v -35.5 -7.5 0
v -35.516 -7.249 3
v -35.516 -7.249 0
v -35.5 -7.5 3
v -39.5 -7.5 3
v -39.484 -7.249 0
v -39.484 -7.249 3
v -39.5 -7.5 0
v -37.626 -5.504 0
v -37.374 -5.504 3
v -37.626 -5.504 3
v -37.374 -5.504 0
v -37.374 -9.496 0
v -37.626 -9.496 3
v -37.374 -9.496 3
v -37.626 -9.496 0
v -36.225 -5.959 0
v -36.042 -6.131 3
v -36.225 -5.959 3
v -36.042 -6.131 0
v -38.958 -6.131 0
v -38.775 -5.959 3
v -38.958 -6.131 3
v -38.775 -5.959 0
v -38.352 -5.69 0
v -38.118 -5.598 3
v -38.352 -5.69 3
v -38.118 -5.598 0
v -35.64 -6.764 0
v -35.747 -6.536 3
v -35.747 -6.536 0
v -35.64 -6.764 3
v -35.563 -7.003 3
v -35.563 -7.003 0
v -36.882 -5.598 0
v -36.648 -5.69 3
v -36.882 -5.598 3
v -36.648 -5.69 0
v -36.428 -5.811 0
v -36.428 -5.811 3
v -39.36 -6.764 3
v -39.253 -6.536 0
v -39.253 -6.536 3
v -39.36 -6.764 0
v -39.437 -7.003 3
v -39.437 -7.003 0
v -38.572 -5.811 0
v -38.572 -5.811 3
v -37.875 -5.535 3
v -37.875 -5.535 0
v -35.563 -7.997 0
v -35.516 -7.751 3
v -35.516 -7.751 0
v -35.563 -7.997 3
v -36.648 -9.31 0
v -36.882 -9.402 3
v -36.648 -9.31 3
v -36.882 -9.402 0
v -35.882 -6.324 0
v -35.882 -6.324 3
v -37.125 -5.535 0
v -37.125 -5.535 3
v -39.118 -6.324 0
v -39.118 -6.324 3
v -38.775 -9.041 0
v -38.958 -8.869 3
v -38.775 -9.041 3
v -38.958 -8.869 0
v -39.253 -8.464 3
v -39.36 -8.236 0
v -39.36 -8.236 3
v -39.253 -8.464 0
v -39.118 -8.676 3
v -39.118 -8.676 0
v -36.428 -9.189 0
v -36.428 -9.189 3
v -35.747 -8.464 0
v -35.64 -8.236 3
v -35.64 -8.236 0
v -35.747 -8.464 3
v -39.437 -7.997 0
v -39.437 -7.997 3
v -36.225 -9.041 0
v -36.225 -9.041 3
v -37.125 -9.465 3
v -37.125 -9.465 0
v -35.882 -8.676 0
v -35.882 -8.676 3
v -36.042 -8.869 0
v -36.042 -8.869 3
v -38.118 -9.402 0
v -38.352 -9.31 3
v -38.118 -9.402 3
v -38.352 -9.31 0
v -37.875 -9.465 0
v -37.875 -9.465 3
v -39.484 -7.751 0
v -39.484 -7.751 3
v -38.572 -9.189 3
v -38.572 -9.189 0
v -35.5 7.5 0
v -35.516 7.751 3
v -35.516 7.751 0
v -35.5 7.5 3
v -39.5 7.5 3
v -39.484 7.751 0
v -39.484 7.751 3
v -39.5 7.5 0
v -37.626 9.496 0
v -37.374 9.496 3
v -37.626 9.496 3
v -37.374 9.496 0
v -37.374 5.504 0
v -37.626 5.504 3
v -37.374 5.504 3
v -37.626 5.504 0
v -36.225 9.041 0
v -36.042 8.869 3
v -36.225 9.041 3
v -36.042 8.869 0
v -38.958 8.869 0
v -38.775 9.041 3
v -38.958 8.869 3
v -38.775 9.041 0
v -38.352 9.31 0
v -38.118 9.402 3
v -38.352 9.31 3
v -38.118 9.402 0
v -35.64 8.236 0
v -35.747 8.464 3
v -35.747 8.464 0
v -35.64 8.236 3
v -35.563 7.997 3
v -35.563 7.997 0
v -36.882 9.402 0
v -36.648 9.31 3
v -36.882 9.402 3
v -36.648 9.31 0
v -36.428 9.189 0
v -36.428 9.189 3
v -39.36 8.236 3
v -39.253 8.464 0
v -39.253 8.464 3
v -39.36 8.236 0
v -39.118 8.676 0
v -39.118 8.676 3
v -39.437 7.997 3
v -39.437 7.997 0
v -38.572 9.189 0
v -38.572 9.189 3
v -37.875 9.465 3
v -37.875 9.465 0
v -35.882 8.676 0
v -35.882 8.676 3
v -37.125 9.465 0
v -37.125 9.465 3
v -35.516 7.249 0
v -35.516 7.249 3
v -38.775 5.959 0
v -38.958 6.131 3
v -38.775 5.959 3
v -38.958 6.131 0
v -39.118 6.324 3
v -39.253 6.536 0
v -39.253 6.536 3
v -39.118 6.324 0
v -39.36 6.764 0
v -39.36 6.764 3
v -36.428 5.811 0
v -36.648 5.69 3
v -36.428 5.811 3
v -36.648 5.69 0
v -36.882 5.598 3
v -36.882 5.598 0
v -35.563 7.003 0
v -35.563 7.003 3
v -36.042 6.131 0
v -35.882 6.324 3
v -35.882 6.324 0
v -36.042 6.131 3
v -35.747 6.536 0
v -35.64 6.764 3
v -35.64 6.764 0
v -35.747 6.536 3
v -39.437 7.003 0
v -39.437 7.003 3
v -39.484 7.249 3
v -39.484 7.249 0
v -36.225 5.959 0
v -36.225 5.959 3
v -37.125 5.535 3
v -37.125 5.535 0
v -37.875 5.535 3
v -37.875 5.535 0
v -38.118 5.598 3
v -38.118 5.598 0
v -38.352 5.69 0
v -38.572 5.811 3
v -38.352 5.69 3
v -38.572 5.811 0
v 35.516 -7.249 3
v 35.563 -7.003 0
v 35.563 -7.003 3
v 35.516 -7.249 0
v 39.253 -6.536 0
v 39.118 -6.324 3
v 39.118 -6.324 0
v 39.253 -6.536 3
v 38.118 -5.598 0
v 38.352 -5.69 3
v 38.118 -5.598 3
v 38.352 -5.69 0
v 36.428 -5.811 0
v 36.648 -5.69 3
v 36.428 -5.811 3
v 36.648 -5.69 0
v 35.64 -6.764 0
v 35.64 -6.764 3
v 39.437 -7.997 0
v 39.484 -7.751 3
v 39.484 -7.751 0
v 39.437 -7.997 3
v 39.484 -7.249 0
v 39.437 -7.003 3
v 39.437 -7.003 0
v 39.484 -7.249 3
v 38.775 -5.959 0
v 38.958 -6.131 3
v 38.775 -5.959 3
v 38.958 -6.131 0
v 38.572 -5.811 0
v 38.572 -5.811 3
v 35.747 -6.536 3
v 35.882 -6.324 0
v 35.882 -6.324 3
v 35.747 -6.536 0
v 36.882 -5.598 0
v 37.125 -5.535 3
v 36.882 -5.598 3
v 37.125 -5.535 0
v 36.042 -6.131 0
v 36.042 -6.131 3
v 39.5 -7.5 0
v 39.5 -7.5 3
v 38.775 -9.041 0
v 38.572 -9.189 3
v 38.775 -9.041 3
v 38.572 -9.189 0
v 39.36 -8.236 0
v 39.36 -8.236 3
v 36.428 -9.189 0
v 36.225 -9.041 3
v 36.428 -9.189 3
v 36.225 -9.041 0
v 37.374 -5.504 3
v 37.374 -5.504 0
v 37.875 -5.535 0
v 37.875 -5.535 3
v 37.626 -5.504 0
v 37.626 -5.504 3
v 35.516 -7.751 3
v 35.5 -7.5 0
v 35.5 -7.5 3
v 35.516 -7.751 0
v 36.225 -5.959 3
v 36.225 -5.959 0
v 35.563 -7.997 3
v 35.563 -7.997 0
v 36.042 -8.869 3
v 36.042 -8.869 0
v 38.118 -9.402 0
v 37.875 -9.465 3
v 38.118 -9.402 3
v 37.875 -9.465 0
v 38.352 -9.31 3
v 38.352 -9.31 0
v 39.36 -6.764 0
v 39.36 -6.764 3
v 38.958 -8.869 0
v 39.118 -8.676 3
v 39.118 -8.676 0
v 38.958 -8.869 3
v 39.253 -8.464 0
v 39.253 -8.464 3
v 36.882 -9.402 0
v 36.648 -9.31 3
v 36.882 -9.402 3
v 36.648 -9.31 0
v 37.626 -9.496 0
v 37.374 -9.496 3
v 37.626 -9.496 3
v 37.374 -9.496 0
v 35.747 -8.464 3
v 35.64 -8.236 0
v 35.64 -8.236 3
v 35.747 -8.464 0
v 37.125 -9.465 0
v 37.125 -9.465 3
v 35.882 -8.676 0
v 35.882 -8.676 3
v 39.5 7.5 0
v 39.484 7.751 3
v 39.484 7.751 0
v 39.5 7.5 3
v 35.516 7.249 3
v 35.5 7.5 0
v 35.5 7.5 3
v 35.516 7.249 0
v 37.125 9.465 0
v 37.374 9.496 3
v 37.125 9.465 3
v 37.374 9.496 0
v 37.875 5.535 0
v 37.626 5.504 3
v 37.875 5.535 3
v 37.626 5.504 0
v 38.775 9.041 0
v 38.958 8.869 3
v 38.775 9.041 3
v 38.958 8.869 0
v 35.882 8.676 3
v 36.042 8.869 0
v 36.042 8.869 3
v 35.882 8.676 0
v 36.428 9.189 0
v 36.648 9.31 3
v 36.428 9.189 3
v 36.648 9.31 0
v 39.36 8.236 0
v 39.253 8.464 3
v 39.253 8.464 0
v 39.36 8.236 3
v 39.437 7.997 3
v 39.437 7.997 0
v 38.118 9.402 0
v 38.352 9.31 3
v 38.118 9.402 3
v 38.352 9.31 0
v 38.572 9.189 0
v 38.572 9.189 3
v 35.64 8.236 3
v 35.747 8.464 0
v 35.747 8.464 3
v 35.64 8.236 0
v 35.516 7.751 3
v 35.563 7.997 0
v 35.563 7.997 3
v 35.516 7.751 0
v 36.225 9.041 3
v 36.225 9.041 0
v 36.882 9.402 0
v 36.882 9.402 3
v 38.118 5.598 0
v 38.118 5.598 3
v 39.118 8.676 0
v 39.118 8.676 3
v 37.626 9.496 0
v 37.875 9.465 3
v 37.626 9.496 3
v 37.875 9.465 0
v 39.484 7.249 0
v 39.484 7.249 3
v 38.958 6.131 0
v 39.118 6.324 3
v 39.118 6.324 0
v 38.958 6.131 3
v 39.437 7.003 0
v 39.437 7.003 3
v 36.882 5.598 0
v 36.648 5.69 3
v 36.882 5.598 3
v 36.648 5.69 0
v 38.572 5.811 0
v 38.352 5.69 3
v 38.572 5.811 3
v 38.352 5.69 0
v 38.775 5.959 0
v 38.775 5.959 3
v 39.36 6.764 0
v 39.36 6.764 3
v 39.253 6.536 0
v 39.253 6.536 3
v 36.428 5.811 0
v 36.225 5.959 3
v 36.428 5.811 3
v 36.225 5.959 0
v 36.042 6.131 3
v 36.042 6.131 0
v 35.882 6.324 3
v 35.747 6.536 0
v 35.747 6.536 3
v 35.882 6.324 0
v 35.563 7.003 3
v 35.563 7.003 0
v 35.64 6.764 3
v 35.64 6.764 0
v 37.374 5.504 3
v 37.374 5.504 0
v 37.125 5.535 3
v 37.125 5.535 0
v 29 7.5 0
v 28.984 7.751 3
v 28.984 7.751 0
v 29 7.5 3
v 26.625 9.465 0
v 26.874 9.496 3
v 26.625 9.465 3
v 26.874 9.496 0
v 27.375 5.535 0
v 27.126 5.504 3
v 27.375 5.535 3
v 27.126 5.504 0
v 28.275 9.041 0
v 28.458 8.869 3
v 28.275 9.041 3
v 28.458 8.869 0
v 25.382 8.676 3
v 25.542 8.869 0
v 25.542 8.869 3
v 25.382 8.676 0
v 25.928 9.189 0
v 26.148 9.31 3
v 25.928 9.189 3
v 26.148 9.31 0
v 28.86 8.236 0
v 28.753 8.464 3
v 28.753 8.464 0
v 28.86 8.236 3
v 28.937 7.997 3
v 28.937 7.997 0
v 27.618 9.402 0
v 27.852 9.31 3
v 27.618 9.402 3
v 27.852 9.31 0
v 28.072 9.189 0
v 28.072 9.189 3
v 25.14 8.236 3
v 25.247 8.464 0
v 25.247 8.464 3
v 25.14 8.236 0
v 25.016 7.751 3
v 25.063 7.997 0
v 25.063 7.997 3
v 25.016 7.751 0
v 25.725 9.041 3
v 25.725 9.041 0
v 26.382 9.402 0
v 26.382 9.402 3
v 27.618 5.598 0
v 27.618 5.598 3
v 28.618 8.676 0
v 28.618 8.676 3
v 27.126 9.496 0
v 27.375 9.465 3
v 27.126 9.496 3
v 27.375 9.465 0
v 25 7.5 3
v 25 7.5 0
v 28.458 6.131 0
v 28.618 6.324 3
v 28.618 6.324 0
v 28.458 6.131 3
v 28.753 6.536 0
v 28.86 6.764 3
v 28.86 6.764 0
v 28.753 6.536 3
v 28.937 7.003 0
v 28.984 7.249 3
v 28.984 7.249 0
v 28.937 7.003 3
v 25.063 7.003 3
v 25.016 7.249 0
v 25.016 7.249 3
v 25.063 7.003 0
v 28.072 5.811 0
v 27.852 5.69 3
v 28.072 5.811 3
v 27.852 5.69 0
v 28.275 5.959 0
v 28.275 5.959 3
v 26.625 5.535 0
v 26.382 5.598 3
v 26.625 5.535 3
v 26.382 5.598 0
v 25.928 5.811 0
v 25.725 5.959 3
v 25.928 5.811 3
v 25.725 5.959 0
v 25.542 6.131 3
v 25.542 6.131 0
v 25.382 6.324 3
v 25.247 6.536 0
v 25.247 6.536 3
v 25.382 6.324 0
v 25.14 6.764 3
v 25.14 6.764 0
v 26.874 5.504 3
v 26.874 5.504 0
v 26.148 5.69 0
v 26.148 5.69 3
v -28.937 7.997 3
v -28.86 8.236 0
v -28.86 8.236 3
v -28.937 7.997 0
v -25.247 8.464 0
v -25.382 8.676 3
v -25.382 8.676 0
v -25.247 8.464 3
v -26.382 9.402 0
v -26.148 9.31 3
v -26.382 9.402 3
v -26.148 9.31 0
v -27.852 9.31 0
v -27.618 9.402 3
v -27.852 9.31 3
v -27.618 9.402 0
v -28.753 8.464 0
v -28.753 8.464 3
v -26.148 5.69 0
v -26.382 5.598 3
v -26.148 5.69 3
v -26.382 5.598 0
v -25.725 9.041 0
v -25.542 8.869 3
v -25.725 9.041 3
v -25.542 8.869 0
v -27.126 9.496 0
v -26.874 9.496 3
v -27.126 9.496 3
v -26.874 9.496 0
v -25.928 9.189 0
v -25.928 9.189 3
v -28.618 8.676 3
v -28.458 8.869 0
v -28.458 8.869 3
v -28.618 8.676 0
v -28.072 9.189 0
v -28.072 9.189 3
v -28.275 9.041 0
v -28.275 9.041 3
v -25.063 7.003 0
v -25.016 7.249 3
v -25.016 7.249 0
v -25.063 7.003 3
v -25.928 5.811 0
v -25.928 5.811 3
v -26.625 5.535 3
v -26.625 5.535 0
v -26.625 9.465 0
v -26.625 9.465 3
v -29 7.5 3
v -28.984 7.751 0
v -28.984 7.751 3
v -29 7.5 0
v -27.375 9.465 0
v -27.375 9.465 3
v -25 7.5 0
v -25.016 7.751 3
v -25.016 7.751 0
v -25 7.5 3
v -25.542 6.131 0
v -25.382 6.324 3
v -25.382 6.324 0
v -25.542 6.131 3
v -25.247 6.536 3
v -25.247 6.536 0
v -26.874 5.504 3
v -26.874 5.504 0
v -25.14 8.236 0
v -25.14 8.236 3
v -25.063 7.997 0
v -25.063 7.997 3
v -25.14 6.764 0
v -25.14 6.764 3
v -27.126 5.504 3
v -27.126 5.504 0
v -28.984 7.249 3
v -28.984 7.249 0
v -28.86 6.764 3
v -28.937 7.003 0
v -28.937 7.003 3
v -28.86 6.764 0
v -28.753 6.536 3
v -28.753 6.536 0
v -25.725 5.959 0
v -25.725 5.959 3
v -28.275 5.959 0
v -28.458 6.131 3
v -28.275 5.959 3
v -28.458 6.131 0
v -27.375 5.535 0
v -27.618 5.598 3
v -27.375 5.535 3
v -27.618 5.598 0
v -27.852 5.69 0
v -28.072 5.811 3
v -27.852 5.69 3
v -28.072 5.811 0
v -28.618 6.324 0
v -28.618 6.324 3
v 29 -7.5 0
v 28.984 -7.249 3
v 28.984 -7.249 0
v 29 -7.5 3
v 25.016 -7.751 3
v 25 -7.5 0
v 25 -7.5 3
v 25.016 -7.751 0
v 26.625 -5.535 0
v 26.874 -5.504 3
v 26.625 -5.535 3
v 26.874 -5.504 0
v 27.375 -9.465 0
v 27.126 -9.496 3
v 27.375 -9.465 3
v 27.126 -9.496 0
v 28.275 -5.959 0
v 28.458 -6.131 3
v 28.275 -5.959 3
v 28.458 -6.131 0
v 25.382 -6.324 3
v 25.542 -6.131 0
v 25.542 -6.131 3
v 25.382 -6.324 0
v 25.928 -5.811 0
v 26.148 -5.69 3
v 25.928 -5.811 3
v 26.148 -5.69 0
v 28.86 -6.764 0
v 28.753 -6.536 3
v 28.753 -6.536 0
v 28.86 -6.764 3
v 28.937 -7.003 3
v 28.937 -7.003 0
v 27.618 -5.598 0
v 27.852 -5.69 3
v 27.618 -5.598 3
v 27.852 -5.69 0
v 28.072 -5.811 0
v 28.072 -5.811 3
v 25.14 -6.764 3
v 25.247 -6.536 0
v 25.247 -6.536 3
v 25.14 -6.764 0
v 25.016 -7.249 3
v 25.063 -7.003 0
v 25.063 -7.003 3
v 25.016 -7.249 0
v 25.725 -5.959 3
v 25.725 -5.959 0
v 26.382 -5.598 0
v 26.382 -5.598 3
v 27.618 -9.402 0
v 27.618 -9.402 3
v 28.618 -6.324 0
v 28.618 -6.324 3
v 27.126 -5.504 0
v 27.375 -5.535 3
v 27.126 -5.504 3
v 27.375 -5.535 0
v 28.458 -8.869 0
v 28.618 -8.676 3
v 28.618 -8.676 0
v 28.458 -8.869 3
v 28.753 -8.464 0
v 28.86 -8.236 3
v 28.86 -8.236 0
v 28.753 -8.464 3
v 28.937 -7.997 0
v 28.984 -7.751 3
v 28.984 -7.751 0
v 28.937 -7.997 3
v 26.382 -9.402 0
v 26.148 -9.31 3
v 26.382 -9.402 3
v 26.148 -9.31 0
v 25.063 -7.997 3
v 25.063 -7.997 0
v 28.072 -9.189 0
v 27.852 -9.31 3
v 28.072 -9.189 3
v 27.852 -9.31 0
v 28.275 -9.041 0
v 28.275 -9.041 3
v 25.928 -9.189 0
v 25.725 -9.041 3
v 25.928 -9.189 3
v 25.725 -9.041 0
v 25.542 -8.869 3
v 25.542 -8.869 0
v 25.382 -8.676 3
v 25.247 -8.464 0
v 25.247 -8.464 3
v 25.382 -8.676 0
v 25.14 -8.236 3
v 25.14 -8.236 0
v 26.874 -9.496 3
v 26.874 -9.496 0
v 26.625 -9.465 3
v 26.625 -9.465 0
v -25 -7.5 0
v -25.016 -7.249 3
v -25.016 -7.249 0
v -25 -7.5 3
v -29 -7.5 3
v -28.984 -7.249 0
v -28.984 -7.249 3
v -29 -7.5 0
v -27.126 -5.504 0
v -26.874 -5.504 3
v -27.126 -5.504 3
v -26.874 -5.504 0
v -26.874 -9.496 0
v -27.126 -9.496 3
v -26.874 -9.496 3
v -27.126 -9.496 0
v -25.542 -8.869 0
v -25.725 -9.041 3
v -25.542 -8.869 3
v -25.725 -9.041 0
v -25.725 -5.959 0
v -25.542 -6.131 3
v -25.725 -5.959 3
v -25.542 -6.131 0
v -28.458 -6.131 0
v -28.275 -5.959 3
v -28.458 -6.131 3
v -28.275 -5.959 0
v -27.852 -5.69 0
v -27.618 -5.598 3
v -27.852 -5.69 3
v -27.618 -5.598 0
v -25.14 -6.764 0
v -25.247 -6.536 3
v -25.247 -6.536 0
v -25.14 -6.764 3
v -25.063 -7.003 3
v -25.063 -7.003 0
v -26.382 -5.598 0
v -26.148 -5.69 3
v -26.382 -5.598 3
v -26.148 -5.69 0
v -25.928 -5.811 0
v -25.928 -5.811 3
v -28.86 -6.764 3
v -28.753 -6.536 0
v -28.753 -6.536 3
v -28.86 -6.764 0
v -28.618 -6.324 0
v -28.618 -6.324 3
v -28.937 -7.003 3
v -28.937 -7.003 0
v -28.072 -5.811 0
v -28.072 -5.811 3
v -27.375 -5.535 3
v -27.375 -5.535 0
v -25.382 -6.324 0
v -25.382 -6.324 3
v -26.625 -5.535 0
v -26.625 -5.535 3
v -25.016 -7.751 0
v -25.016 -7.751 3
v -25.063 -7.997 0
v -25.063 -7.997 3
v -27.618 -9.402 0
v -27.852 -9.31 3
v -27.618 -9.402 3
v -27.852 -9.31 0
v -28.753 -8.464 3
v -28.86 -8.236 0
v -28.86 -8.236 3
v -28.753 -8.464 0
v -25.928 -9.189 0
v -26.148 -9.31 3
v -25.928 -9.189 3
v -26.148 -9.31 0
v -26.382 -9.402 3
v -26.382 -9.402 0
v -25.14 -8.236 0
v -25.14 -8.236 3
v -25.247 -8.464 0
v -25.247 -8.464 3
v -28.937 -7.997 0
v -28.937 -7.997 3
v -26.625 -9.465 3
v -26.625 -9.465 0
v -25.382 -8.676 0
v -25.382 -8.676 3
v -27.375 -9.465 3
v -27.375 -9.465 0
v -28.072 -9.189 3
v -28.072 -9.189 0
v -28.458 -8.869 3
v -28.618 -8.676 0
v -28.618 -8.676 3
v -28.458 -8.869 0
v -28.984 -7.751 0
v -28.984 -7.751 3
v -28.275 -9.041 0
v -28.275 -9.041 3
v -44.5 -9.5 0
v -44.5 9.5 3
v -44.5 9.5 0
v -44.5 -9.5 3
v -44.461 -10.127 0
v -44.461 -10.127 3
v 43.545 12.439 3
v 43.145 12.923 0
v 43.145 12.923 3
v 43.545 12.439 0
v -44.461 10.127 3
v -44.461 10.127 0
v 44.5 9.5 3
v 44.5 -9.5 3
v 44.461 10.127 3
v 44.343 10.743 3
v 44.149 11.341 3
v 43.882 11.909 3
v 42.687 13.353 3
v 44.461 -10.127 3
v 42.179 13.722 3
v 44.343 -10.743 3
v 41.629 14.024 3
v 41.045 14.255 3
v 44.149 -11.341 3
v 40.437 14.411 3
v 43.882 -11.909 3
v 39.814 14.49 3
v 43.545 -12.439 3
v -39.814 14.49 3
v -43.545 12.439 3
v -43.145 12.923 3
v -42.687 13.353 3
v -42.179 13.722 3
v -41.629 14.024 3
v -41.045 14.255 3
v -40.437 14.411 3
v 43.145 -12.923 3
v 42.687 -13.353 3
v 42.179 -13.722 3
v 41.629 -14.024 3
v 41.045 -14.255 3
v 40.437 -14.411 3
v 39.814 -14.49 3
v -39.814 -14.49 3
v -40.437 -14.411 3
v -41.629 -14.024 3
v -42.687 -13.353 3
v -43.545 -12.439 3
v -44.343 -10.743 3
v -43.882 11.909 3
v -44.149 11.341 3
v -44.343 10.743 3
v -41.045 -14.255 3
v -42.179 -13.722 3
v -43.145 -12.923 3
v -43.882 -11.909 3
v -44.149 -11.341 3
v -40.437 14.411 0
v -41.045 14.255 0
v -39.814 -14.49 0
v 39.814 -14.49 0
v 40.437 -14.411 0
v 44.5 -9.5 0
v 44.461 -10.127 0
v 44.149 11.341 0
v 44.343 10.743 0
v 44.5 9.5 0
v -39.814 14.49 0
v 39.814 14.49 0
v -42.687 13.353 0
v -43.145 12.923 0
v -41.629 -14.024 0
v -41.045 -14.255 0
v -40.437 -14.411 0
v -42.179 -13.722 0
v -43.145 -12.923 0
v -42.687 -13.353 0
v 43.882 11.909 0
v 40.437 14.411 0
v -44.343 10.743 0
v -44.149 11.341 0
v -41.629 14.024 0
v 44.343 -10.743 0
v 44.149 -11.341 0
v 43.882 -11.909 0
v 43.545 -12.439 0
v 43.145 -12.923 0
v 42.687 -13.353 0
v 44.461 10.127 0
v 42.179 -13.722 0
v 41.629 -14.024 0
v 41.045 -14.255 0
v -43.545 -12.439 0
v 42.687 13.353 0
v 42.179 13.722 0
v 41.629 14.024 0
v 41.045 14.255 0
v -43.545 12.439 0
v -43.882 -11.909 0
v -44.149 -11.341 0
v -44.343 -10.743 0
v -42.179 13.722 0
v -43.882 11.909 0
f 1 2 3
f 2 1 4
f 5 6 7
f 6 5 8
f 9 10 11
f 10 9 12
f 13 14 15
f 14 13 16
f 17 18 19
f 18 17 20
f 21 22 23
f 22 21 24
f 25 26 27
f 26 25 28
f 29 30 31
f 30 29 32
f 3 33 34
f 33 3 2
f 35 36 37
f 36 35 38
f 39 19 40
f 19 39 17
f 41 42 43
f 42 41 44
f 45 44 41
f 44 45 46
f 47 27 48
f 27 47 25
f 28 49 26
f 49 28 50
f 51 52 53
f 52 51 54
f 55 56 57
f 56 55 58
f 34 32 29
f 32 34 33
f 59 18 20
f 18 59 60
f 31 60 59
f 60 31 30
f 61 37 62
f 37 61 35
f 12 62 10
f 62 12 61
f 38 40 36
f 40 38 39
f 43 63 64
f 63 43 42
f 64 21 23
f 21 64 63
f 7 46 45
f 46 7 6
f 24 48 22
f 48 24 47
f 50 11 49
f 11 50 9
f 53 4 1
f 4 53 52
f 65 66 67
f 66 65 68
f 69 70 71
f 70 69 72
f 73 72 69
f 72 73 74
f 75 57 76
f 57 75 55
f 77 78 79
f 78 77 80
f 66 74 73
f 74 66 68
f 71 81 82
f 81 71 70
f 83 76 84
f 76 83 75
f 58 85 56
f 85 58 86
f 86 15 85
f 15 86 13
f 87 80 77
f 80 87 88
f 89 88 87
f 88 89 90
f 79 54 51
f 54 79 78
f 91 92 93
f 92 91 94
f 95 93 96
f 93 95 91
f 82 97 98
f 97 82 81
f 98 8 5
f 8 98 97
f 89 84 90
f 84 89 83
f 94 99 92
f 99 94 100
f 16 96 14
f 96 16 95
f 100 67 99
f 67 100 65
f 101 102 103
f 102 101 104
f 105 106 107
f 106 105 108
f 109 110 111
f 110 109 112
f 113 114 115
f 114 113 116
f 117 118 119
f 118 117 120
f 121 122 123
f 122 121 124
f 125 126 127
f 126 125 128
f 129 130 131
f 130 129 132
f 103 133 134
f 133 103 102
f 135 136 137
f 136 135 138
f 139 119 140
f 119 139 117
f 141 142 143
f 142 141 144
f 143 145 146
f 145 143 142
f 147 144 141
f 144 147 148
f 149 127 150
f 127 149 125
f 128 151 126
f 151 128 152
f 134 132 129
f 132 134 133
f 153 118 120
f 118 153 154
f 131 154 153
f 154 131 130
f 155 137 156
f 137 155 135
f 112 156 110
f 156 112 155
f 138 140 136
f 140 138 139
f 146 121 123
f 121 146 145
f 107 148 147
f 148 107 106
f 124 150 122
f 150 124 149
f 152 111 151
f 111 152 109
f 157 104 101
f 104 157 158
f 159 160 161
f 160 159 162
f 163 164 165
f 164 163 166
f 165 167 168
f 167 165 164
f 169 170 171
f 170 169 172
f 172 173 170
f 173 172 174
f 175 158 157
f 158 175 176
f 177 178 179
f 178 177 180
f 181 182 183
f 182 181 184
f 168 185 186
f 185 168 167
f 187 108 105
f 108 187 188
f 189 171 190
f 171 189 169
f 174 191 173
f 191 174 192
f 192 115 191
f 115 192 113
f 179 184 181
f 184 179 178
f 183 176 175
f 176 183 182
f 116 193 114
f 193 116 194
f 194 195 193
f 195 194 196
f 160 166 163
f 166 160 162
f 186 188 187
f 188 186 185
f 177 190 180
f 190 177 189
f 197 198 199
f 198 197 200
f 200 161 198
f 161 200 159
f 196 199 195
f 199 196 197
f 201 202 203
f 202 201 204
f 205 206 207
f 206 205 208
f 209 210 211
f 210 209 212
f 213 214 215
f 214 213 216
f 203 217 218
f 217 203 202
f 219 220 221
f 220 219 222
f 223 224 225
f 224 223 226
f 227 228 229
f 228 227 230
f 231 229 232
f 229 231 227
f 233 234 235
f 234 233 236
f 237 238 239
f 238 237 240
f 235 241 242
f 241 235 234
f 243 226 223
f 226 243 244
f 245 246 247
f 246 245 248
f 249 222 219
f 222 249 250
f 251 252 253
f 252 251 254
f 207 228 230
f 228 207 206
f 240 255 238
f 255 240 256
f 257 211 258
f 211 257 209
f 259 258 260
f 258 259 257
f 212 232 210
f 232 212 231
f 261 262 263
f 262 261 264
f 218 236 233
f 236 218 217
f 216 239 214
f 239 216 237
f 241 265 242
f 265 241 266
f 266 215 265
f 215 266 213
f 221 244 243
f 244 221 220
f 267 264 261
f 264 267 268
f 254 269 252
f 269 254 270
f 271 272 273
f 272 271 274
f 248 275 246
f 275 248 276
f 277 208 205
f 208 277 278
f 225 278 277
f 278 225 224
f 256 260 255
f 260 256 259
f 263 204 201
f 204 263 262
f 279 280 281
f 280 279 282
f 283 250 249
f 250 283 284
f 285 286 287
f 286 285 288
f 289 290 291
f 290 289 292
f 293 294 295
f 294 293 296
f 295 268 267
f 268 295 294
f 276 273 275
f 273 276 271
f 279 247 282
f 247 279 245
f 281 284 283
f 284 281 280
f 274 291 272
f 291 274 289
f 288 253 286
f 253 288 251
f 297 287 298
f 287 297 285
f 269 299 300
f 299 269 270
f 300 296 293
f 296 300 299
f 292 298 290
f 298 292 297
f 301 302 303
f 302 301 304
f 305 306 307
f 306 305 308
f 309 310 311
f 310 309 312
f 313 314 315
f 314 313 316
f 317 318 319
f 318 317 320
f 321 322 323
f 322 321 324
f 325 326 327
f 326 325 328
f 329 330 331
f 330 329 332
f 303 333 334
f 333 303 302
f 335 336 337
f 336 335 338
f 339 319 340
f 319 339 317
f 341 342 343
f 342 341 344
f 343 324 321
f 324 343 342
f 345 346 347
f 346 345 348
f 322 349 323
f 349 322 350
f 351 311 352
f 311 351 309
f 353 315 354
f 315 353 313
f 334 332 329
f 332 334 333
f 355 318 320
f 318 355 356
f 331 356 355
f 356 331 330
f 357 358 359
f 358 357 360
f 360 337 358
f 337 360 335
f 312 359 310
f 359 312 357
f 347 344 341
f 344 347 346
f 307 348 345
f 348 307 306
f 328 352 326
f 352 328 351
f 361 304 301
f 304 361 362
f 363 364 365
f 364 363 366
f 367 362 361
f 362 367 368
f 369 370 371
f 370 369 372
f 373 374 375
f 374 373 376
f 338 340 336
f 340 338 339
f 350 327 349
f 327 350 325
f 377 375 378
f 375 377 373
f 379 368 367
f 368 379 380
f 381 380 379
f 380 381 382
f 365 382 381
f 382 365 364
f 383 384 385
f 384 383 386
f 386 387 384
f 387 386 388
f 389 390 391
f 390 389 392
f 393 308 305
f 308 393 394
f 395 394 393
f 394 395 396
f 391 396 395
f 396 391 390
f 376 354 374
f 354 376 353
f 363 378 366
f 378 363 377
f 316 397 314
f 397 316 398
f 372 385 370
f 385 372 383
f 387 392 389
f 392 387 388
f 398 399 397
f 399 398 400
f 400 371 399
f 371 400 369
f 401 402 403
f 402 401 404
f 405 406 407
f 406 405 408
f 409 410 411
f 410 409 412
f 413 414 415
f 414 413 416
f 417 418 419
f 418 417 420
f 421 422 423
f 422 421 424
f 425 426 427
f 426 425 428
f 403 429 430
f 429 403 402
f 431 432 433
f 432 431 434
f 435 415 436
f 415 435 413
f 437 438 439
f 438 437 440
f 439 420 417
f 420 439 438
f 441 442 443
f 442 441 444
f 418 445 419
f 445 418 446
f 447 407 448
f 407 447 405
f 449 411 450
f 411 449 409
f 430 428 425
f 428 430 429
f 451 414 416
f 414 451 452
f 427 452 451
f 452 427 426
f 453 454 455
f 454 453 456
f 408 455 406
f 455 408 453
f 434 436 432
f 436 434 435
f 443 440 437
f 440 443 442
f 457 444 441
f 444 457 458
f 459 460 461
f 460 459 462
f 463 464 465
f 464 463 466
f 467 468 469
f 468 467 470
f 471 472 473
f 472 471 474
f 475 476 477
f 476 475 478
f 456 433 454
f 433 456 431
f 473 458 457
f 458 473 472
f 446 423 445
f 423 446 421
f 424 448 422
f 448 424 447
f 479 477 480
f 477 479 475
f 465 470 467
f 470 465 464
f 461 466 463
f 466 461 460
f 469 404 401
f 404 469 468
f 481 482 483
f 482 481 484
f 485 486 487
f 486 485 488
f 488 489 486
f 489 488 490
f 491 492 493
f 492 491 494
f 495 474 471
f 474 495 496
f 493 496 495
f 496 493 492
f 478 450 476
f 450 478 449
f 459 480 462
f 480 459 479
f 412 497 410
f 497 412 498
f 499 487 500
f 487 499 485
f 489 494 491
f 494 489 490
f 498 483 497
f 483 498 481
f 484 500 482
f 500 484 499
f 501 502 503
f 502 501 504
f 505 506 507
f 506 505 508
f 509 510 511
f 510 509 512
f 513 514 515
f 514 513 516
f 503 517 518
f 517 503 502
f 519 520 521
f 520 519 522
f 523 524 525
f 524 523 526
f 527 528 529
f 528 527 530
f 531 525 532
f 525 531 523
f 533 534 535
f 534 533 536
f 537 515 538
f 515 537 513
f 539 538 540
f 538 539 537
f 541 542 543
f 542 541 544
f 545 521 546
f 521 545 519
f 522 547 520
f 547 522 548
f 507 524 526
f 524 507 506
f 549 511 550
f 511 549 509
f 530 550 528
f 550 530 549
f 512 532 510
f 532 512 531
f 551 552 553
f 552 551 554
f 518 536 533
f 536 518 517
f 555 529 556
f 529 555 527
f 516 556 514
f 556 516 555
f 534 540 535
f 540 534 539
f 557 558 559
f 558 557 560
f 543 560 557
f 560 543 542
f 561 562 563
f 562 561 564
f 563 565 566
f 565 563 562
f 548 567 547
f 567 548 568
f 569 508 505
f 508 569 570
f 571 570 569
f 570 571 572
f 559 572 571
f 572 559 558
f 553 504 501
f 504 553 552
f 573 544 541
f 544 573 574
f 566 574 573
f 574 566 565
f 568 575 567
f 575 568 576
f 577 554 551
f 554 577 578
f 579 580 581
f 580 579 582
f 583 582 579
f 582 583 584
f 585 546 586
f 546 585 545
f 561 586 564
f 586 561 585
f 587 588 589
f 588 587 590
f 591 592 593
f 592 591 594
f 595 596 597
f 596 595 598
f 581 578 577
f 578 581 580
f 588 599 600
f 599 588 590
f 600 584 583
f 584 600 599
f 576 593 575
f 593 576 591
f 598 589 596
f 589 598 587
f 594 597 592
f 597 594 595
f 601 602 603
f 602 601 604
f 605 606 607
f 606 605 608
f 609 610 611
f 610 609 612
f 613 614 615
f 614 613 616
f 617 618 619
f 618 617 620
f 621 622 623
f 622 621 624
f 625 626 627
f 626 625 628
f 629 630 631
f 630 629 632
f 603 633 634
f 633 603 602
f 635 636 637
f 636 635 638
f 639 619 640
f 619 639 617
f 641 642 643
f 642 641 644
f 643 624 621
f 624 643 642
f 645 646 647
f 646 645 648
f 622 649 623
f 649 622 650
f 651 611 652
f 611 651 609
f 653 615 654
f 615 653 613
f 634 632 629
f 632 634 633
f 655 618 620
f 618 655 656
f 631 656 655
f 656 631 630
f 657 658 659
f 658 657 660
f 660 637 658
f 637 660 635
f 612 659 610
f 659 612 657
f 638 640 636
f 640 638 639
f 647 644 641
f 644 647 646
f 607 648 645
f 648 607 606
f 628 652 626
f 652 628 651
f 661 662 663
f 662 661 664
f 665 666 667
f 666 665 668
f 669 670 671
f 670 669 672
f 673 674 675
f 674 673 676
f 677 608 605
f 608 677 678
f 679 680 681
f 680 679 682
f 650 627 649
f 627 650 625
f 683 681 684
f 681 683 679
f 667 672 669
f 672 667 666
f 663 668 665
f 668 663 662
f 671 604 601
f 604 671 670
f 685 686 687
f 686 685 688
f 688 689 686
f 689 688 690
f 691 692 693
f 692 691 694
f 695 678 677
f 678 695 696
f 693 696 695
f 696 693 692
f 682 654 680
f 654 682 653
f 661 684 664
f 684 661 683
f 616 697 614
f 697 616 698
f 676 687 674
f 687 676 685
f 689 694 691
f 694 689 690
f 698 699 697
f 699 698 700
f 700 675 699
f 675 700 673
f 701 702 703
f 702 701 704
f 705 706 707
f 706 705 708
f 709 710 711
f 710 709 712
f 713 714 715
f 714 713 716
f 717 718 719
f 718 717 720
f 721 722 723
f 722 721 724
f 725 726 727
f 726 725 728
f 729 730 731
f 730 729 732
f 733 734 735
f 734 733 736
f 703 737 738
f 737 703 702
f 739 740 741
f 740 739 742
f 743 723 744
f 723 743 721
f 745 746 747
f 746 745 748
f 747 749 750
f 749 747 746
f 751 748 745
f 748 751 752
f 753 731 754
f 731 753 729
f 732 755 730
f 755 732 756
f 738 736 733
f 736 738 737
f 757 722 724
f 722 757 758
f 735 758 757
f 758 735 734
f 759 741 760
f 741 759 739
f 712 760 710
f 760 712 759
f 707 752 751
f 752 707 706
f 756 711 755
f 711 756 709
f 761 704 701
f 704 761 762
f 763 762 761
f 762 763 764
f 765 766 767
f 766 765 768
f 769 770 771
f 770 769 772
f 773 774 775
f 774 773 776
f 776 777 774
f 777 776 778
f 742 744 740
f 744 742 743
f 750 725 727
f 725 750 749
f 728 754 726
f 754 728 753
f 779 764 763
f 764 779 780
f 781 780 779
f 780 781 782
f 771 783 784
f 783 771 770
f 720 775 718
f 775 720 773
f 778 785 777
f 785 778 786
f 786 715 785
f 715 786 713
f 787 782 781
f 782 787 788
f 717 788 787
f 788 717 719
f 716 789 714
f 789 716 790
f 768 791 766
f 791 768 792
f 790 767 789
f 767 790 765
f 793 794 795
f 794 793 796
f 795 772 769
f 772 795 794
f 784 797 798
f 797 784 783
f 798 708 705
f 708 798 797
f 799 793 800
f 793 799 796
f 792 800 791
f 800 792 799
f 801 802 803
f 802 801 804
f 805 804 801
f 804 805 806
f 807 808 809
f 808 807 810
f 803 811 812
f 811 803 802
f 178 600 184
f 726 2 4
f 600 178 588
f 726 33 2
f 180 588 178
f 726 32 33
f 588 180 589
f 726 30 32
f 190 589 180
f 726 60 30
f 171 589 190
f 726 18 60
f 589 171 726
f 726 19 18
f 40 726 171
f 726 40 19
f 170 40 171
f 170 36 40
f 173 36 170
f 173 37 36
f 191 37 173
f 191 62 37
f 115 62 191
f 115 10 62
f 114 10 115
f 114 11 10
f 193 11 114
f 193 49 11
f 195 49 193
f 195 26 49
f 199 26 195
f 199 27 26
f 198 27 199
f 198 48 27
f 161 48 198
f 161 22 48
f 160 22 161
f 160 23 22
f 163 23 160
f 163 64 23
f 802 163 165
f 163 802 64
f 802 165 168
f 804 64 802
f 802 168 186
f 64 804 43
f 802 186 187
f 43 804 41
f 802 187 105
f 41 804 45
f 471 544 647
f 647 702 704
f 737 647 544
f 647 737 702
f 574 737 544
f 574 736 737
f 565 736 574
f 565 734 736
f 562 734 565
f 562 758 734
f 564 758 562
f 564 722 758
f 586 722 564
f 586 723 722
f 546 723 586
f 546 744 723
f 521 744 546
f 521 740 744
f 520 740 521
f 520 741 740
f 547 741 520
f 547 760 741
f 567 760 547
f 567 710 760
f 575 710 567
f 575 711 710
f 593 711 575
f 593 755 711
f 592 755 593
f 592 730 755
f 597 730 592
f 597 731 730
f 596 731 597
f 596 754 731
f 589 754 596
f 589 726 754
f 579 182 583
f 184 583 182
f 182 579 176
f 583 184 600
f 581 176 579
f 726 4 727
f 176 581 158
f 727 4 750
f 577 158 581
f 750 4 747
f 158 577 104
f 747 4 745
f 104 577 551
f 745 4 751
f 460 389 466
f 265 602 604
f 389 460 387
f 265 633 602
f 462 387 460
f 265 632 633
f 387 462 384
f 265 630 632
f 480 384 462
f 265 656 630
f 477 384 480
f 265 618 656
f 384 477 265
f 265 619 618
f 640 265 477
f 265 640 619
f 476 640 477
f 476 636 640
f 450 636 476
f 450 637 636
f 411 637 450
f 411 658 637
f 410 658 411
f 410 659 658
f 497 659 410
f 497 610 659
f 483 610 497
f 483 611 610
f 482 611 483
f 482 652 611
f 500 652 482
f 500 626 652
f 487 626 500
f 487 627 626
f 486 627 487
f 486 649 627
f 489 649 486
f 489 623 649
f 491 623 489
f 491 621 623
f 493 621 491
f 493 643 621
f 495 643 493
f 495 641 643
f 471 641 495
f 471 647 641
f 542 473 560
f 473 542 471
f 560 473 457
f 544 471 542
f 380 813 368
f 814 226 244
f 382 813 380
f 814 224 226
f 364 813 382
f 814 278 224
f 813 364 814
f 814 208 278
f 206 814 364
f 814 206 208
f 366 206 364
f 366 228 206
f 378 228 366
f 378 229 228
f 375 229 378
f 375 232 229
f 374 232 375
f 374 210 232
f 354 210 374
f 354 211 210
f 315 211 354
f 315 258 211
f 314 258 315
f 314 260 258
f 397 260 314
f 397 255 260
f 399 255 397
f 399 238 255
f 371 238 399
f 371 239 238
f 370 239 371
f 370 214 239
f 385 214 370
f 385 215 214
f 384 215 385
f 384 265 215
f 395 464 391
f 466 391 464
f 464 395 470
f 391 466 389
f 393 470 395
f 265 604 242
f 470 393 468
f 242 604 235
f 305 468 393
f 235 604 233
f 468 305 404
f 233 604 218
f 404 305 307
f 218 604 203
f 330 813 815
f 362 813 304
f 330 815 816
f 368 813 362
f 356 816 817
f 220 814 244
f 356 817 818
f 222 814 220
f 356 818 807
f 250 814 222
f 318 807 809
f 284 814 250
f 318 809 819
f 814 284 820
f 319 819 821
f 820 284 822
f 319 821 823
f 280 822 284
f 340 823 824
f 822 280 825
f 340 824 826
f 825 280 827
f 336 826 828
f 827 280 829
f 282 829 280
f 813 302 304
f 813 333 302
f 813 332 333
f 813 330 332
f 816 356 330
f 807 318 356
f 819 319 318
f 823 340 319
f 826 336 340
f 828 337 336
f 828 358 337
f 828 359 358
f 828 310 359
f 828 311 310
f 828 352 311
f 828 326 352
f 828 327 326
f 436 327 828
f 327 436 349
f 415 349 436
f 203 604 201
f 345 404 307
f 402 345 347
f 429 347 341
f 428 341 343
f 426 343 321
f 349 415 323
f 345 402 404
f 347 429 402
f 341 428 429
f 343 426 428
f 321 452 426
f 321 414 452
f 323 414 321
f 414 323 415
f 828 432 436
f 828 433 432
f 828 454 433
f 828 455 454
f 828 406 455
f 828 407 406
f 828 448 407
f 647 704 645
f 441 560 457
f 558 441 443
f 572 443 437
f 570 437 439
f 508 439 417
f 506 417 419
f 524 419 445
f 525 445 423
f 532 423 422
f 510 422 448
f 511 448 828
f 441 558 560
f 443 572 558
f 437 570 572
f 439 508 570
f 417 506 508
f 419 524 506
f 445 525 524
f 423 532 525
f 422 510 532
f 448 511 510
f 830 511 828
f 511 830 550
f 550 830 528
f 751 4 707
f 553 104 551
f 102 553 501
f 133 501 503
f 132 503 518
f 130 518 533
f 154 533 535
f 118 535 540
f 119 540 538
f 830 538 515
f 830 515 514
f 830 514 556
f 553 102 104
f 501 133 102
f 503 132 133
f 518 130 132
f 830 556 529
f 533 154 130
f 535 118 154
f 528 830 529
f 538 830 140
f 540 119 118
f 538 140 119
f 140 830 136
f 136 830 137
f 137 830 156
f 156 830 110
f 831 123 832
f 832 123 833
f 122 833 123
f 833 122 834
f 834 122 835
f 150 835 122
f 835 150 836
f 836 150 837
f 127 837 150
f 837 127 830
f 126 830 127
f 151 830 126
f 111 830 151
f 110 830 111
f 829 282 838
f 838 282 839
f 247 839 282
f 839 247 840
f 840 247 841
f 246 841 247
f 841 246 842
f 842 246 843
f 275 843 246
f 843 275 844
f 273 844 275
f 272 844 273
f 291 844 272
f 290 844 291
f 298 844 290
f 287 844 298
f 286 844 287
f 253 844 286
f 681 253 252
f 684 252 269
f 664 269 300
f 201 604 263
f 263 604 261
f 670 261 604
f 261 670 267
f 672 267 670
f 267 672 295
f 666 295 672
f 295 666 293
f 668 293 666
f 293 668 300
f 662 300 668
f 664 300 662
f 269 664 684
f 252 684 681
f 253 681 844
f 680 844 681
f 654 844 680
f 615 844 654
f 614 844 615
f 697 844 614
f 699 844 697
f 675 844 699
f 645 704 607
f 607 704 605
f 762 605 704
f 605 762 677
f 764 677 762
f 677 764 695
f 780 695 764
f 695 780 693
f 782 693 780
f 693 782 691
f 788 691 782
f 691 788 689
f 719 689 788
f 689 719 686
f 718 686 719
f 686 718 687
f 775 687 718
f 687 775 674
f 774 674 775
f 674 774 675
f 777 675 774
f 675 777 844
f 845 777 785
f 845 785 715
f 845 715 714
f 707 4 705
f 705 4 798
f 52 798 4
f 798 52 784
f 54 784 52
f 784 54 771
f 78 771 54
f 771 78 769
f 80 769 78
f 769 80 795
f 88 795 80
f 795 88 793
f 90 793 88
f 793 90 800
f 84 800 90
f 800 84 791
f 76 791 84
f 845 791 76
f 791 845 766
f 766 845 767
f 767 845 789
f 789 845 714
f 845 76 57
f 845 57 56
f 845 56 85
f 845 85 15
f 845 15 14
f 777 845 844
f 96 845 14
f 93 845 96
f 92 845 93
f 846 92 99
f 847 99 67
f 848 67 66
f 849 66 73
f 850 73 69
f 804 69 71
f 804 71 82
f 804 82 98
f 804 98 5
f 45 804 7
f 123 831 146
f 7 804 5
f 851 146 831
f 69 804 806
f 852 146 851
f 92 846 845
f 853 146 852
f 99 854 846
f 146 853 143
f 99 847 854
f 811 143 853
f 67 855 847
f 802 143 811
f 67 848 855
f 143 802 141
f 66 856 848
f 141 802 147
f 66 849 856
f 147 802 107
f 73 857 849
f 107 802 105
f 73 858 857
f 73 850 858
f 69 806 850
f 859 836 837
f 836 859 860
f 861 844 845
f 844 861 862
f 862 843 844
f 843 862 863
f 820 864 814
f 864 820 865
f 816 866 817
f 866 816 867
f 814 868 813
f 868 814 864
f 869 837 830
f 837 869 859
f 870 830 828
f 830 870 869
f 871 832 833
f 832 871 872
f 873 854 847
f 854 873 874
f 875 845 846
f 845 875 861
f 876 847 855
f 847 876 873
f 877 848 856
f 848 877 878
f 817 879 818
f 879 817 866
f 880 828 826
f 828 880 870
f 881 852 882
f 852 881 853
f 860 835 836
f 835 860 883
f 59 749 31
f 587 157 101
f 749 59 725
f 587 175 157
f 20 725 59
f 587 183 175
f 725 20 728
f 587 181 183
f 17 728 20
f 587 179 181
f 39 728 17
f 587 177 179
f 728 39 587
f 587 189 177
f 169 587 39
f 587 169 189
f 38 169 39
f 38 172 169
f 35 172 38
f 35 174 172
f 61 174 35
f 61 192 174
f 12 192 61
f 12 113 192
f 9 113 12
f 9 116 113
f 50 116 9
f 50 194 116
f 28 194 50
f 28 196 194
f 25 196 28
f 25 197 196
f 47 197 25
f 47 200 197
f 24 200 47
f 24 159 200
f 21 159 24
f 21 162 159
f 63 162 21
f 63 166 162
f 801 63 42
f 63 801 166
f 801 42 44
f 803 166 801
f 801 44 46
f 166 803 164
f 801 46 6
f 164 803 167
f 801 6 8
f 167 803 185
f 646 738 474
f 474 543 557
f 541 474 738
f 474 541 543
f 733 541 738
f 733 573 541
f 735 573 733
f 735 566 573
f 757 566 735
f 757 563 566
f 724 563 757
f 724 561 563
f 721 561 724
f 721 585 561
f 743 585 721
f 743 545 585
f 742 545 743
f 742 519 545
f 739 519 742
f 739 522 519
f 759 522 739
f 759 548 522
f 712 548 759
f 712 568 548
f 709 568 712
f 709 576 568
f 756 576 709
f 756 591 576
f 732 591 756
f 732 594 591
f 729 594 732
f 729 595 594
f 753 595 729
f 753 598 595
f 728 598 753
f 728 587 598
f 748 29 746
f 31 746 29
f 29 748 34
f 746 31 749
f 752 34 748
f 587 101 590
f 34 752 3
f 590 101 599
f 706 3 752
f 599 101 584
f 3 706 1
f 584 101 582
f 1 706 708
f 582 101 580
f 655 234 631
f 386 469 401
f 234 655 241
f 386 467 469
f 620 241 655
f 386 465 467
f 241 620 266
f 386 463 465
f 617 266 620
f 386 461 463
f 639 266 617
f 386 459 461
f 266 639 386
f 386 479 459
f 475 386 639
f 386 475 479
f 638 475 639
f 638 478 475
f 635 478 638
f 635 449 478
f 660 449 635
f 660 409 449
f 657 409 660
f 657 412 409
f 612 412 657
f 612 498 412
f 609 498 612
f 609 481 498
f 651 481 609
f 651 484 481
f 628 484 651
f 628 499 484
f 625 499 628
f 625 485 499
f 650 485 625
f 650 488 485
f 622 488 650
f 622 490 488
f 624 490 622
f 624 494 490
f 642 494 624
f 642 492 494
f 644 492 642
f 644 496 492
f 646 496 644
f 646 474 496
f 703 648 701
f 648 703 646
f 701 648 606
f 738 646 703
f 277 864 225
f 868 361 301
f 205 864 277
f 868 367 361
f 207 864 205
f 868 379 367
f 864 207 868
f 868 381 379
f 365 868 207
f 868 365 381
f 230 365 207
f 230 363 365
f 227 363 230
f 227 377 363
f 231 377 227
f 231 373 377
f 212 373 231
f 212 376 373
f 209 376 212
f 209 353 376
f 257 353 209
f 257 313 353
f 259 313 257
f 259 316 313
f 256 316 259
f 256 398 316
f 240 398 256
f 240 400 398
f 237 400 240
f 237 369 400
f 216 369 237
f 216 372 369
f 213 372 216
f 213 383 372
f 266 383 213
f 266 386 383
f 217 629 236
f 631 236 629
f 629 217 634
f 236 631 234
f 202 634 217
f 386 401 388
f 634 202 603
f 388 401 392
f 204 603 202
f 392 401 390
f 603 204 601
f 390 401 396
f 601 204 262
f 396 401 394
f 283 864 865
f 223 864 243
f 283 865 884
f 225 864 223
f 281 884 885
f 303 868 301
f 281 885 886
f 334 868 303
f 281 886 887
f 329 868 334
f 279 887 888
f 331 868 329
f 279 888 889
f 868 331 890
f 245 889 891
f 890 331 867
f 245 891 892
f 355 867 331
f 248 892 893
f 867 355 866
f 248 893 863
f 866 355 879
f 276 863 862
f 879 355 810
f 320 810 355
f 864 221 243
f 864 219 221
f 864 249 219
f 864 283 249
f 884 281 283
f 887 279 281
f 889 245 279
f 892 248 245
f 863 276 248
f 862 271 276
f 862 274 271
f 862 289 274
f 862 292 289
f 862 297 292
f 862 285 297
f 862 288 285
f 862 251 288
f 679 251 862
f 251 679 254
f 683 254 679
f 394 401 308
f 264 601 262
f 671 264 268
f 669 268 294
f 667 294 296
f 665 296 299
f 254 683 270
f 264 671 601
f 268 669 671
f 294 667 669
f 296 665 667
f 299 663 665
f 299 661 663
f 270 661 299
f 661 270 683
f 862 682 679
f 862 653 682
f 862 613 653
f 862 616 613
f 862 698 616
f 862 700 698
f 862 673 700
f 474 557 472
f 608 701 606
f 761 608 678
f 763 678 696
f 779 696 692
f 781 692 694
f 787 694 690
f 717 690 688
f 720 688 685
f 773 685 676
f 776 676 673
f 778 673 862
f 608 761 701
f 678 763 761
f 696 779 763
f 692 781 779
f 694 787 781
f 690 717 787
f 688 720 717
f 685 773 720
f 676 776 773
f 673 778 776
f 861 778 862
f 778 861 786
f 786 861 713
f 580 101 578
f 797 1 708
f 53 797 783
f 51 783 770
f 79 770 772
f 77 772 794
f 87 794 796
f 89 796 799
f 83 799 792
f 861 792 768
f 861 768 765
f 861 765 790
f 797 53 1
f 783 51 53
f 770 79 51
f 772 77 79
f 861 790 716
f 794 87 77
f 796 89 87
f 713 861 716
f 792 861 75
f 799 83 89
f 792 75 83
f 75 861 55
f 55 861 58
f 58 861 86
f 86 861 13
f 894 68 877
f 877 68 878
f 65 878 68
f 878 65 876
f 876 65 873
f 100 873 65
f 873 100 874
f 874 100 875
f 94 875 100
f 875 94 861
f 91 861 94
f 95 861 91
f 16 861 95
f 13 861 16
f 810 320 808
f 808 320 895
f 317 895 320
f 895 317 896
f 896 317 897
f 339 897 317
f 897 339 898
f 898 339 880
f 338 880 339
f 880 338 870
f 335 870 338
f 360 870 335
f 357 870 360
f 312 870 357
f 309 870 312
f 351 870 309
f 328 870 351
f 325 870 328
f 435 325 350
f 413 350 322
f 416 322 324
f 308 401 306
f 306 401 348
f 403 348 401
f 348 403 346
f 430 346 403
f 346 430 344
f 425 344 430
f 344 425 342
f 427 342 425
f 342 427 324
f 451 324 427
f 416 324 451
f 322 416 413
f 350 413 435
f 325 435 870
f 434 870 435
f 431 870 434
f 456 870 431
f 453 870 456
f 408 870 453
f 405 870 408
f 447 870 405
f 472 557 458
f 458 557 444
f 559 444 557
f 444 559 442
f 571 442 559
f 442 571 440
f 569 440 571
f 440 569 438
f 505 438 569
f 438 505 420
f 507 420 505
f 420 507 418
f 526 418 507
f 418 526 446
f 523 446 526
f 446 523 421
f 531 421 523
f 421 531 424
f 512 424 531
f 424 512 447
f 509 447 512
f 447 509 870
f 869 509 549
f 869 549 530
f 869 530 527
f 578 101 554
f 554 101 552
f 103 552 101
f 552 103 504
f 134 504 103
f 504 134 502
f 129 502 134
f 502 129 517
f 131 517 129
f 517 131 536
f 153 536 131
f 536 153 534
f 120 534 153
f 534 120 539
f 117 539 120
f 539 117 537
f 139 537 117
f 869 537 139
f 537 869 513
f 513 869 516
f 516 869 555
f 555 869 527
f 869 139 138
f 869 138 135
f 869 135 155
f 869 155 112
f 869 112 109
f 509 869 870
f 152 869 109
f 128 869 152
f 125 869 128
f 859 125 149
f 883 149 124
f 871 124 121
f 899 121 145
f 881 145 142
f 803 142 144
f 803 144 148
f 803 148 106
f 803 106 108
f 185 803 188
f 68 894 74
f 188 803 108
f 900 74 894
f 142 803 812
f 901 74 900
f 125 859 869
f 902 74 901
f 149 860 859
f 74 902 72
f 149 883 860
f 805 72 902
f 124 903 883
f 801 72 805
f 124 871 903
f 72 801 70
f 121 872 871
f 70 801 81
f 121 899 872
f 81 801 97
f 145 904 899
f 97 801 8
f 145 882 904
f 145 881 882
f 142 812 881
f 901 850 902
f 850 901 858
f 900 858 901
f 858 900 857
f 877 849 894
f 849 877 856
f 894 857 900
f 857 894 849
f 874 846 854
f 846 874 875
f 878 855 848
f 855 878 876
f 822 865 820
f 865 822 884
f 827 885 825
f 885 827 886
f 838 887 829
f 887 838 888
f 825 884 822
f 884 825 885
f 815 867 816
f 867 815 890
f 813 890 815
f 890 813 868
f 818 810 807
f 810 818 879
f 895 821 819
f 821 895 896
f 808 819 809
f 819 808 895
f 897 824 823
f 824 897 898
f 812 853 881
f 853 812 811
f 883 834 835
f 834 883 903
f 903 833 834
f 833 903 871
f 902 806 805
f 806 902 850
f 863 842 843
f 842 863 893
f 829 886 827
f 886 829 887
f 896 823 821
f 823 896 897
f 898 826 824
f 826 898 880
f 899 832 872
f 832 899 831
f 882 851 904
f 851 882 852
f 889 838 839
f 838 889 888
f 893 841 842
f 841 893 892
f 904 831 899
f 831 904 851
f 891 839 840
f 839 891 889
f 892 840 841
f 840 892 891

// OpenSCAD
$fn = 50;


difference() {
	union() {
		translate(v = [0, 0, 0]) {
			rotate(a = [0, 0, 0]) {
				hull() {
					translate(v = [-39.5000000000, 9.5000000000, 0]) {
						rotate(a = [0, 0, 0]) {
							translate(v = [0, 0, 0]) {
								rotate(a = [0, 0, 0]) {
									cylinder(h = 3, r = 5);
								}
							}
						}
					}
					translate(v = [39.5000000000, 9.5000000000, 0]) {
						rotate(a = [0, 0, 0]) {
							translate(v = [0, 0, 0]) {
								rotate(a = [0, 0, 0]) {
									cylinder(h = 3, r = 5);
								}
							}
						}
					}
					translate(v = [-39.5000000000, -9.5000000000, 0]) {
						rotate(a = [0, 0, 0]) {
							translate(v = [0, 0, 0]) {
								rotate(a = [0, 0, 0]) {
									cylinder(h = 3, r = 5);
								}
							}
						}
					}
					translate(v = [39.5000000000, -9.5000000000, 0]) {
						rotate(a = [0, 0, 0]) {
							translate(v = [0, 0, 0]) {
								rotate(a = [0, 0, 0]) {
									cylinder(h = 3, r = 5);
								}
							}
						}
					}
				}
			}
		}
	}
	union() {
		translate(v = [-37.5000000000, -7.5000000000, -125.0000000000]) {
			rotate(a = [0, 0, 0]) {
				cylinder(h = 250, r = 2.0000000000);
			}
		}
		translate(v = [-37.5000000000, 7.5000000000, -125.0000000000]) {
			rotate(a = [0, 0, 0]) {
				cylinder(h = 250, r = 2.0000000000);
			}
		}
		translate(v = [37.5000000000, -7.5000000000, -125.0000000000]) {
			rotate(a = [0, 0, 0]) {
				cylinder(h = 250, r = 2.0000000000);
			}
		}
		translate(v = [37.5000000000, 7.5000000000, -125.0000000000]) {
			rotate(a = [0, 0, 0]) {
				cylinder(h = 250, r = 2.0000000000);
			}
		}
		translate(v = [37.5000000000, -7.5000000000, -125.0000000000]) {
			rotate(a = [0, 0, 0]) {
				cylinder(h = 250, r = 2.0000000000);
			}
		}
		translate(v = [37.5000000000, 7.5000000000, -125.0000000000]) {
			rotate(a = [0, 0, 0]) {
				cylinder(h = 250, r = 2.0000000000);
			}
		}
		translate(v = [27.0000000000, 7.5000000000, -125.0000000000]) {
			rotate(a = [0, 0, 0]) {
				cylinder(h = 250, r = 2.0000000000);
			}
		}
		translate(v = [-27.0000000000, 7.5000000000, -125.0000000000]) {
			rotate(a = [0, 0, 0]) {
				cylinder(h = 250, r = 2.0000000000);
			}
		}
		translate(v = [27.0000000000, -7.5000000000, -125.0000000000]) {
			rotate(a = [0, 0, 0]) {
				cylinder(h = 250, r = 2.0000000000);
			}
		}
		translate(v = [-27.0000000000, -7.5000000000, -125.0000000000]) {
			rotate(a = [0, 0, 0]) {
				cylinder(h = 250, r = 2.0000000000);
			}
		}
	}
}
